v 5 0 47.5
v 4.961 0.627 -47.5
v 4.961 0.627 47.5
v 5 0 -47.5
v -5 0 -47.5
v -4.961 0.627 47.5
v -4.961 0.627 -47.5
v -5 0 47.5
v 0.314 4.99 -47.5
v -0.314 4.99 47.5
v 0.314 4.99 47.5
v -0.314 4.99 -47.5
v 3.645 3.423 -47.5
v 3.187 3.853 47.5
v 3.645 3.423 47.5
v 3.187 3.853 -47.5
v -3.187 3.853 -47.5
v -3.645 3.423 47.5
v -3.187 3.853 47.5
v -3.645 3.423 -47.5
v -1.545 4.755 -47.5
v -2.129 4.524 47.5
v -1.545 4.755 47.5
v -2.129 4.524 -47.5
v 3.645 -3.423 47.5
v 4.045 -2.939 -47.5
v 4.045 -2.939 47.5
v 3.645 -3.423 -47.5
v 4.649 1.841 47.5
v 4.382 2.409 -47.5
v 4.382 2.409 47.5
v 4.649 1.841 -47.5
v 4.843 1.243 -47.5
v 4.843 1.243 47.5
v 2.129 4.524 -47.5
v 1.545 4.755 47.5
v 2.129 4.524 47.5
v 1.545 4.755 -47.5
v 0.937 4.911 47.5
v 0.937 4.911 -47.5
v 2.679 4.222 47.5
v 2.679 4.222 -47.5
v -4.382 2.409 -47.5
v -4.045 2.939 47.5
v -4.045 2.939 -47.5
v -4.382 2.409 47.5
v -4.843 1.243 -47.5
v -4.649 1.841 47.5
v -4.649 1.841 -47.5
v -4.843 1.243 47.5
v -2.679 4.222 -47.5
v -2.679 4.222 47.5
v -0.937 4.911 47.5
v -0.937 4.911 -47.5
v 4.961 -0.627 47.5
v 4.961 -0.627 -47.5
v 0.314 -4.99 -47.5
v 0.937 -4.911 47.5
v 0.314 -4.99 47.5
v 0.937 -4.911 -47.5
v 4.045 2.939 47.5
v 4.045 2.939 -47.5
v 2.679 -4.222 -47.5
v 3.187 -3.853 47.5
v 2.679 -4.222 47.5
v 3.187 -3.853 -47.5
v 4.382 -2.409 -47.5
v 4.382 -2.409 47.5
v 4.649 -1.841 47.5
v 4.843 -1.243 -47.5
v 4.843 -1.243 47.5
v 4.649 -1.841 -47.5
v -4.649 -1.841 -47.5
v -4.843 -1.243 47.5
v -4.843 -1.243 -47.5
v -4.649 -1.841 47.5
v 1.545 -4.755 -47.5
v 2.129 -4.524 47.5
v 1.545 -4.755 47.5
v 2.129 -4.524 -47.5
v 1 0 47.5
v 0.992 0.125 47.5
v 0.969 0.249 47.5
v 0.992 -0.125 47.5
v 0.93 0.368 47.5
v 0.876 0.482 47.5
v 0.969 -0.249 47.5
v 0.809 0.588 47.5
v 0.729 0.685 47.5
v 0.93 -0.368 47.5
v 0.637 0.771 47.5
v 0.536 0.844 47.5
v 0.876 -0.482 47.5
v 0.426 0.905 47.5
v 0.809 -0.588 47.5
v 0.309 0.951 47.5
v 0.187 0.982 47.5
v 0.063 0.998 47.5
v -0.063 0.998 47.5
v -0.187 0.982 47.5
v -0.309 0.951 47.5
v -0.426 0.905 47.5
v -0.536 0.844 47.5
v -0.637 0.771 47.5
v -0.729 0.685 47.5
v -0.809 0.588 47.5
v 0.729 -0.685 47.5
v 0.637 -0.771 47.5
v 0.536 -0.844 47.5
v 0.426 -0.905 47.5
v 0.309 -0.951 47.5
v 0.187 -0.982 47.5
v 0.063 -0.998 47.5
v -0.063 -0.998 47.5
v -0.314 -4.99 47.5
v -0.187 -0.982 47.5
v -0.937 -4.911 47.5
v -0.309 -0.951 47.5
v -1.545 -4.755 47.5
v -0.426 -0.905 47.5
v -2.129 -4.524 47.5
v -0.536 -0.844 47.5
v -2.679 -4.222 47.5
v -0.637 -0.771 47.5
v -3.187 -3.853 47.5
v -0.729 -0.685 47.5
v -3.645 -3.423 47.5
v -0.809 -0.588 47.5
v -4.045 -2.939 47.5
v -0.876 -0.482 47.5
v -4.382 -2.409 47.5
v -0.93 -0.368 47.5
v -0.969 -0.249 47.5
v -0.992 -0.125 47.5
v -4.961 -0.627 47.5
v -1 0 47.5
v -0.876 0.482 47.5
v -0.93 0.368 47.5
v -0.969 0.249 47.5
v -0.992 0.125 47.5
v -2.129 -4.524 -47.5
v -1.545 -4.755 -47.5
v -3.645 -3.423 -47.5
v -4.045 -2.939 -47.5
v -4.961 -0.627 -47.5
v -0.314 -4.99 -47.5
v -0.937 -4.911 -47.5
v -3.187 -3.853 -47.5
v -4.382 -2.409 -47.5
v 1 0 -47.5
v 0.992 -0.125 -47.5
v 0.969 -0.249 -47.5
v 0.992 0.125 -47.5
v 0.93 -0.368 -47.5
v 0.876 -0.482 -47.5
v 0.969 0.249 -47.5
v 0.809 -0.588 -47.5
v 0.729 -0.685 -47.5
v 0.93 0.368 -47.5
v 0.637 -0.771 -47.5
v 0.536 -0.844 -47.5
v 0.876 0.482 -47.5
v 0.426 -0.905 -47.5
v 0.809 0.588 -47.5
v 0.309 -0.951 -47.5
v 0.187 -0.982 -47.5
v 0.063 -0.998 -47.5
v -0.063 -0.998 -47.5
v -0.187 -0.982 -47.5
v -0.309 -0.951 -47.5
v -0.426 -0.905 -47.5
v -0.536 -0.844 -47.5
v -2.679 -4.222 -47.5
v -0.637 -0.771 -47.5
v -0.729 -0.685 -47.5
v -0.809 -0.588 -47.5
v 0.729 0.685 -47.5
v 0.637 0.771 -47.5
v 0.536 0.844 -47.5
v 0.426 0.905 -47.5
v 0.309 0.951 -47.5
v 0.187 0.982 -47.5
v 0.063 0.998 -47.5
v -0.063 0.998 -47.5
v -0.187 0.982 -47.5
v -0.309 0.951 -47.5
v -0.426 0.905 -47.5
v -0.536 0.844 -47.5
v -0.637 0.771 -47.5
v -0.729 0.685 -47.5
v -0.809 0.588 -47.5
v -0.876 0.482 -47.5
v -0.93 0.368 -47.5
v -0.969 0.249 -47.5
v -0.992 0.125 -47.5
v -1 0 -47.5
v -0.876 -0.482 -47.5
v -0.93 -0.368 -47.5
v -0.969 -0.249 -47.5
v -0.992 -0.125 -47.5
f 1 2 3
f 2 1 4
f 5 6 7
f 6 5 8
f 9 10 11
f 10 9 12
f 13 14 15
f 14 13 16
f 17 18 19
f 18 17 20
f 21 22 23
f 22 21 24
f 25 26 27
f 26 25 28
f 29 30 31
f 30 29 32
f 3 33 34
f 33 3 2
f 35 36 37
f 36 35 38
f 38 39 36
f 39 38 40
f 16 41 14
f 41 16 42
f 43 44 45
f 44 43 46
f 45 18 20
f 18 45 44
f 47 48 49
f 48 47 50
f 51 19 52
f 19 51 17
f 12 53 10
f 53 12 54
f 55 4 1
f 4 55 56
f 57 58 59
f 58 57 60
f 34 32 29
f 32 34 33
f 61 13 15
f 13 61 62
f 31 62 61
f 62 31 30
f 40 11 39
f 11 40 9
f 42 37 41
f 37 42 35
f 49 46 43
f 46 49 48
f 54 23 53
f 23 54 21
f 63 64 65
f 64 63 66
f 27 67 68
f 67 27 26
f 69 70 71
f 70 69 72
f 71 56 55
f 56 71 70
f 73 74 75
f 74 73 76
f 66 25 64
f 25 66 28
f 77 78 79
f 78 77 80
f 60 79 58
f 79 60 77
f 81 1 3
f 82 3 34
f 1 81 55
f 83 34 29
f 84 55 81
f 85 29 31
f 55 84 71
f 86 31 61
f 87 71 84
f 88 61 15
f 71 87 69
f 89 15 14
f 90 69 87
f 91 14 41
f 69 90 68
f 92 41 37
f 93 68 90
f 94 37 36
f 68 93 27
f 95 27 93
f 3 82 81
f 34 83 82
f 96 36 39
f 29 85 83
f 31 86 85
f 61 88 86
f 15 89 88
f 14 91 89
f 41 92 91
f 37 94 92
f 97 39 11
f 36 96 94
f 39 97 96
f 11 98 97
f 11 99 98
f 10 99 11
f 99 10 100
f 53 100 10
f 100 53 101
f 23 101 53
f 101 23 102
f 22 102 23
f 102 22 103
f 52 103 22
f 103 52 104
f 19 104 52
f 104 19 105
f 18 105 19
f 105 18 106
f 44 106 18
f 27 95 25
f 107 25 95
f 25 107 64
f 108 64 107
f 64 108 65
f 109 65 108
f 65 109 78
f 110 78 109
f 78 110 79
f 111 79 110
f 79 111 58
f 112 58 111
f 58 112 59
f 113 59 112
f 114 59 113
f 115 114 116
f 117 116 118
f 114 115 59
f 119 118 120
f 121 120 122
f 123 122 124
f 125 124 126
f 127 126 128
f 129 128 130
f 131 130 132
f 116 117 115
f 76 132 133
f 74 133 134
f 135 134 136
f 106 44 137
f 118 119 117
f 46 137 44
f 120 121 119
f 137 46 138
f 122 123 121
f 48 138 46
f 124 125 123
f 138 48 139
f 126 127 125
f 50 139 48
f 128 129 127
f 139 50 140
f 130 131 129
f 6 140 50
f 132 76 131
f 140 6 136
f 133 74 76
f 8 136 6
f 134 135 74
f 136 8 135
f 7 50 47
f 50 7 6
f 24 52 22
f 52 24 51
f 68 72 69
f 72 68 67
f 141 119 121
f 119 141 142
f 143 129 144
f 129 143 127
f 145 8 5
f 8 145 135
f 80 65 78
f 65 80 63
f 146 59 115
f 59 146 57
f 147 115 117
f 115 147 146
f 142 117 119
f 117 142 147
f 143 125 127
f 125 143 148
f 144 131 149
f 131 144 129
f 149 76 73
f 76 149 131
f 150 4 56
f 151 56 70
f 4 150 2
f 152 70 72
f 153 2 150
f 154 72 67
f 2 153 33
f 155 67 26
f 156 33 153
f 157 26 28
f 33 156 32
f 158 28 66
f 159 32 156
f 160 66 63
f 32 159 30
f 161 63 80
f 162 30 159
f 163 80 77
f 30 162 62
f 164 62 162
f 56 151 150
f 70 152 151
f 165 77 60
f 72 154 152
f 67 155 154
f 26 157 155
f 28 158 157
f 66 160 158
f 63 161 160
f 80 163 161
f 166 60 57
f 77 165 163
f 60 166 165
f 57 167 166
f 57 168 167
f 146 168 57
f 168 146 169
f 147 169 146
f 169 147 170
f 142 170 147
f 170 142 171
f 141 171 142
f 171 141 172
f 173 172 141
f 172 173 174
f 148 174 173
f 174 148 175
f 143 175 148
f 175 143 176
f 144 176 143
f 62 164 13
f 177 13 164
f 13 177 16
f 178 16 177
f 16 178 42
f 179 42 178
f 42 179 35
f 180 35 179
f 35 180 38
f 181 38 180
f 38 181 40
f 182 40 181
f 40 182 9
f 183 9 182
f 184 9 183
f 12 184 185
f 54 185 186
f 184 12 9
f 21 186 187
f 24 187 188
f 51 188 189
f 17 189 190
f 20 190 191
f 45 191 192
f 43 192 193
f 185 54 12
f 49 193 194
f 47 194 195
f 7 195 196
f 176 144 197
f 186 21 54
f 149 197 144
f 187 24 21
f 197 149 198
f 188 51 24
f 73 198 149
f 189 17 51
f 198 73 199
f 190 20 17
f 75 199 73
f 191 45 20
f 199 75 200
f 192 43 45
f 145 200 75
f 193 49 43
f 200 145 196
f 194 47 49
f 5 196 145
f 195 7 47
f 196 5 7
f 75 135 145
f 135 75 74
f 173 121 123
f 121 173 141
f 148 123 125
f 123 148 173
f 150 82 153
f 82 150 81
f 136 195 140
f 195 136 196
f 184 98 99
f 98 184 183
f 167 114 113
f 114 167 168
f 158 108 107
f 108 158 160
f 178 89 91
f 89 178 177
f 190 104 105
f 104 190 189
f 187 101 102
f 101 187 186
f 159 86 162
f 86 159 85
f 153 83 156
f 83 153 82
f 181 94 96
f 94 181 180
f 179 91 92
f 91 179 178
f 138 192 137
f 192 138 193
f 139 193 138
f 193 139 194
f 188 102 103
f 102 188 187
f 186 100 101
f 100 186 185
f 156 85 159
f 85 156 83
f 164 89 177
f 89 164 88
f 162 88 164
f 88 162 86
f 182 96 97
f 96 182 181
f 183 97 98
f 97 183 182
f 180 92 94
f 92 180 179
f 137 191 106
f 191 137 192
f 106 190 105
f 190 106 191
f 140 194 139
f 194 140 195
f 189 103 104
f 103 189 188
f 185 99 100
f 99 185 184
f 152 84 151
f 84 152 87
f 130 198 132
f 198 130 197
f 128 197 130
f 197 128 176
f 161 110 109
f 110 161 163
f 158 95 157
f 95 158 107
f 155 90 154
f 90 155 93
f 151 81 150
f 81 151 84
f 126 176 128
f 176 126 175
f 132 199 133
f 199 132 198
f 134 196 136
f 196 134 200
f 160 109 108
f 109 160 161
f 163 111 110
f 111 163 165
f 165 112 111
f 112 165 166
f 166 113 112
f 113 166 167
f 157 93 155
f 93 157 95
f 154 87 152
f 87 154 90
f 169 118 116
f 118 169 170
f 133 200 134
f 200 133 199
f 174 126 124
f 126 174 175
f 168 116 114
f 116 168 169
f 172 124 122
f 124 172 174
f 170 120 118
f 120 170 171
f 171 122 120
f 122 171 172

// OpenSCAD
$fn = 50;


difference() {
	union() {
		translate(v = [0, 0, -47.5000000000]) {
			cylinder(h = 95, r = 5.0000000000);
		}
	}
	union() {
		translate(v = [0, 0, -100.0000000000]) {
			cylinder(h = 200, r = 1.0000000000);
		}
	}
}
